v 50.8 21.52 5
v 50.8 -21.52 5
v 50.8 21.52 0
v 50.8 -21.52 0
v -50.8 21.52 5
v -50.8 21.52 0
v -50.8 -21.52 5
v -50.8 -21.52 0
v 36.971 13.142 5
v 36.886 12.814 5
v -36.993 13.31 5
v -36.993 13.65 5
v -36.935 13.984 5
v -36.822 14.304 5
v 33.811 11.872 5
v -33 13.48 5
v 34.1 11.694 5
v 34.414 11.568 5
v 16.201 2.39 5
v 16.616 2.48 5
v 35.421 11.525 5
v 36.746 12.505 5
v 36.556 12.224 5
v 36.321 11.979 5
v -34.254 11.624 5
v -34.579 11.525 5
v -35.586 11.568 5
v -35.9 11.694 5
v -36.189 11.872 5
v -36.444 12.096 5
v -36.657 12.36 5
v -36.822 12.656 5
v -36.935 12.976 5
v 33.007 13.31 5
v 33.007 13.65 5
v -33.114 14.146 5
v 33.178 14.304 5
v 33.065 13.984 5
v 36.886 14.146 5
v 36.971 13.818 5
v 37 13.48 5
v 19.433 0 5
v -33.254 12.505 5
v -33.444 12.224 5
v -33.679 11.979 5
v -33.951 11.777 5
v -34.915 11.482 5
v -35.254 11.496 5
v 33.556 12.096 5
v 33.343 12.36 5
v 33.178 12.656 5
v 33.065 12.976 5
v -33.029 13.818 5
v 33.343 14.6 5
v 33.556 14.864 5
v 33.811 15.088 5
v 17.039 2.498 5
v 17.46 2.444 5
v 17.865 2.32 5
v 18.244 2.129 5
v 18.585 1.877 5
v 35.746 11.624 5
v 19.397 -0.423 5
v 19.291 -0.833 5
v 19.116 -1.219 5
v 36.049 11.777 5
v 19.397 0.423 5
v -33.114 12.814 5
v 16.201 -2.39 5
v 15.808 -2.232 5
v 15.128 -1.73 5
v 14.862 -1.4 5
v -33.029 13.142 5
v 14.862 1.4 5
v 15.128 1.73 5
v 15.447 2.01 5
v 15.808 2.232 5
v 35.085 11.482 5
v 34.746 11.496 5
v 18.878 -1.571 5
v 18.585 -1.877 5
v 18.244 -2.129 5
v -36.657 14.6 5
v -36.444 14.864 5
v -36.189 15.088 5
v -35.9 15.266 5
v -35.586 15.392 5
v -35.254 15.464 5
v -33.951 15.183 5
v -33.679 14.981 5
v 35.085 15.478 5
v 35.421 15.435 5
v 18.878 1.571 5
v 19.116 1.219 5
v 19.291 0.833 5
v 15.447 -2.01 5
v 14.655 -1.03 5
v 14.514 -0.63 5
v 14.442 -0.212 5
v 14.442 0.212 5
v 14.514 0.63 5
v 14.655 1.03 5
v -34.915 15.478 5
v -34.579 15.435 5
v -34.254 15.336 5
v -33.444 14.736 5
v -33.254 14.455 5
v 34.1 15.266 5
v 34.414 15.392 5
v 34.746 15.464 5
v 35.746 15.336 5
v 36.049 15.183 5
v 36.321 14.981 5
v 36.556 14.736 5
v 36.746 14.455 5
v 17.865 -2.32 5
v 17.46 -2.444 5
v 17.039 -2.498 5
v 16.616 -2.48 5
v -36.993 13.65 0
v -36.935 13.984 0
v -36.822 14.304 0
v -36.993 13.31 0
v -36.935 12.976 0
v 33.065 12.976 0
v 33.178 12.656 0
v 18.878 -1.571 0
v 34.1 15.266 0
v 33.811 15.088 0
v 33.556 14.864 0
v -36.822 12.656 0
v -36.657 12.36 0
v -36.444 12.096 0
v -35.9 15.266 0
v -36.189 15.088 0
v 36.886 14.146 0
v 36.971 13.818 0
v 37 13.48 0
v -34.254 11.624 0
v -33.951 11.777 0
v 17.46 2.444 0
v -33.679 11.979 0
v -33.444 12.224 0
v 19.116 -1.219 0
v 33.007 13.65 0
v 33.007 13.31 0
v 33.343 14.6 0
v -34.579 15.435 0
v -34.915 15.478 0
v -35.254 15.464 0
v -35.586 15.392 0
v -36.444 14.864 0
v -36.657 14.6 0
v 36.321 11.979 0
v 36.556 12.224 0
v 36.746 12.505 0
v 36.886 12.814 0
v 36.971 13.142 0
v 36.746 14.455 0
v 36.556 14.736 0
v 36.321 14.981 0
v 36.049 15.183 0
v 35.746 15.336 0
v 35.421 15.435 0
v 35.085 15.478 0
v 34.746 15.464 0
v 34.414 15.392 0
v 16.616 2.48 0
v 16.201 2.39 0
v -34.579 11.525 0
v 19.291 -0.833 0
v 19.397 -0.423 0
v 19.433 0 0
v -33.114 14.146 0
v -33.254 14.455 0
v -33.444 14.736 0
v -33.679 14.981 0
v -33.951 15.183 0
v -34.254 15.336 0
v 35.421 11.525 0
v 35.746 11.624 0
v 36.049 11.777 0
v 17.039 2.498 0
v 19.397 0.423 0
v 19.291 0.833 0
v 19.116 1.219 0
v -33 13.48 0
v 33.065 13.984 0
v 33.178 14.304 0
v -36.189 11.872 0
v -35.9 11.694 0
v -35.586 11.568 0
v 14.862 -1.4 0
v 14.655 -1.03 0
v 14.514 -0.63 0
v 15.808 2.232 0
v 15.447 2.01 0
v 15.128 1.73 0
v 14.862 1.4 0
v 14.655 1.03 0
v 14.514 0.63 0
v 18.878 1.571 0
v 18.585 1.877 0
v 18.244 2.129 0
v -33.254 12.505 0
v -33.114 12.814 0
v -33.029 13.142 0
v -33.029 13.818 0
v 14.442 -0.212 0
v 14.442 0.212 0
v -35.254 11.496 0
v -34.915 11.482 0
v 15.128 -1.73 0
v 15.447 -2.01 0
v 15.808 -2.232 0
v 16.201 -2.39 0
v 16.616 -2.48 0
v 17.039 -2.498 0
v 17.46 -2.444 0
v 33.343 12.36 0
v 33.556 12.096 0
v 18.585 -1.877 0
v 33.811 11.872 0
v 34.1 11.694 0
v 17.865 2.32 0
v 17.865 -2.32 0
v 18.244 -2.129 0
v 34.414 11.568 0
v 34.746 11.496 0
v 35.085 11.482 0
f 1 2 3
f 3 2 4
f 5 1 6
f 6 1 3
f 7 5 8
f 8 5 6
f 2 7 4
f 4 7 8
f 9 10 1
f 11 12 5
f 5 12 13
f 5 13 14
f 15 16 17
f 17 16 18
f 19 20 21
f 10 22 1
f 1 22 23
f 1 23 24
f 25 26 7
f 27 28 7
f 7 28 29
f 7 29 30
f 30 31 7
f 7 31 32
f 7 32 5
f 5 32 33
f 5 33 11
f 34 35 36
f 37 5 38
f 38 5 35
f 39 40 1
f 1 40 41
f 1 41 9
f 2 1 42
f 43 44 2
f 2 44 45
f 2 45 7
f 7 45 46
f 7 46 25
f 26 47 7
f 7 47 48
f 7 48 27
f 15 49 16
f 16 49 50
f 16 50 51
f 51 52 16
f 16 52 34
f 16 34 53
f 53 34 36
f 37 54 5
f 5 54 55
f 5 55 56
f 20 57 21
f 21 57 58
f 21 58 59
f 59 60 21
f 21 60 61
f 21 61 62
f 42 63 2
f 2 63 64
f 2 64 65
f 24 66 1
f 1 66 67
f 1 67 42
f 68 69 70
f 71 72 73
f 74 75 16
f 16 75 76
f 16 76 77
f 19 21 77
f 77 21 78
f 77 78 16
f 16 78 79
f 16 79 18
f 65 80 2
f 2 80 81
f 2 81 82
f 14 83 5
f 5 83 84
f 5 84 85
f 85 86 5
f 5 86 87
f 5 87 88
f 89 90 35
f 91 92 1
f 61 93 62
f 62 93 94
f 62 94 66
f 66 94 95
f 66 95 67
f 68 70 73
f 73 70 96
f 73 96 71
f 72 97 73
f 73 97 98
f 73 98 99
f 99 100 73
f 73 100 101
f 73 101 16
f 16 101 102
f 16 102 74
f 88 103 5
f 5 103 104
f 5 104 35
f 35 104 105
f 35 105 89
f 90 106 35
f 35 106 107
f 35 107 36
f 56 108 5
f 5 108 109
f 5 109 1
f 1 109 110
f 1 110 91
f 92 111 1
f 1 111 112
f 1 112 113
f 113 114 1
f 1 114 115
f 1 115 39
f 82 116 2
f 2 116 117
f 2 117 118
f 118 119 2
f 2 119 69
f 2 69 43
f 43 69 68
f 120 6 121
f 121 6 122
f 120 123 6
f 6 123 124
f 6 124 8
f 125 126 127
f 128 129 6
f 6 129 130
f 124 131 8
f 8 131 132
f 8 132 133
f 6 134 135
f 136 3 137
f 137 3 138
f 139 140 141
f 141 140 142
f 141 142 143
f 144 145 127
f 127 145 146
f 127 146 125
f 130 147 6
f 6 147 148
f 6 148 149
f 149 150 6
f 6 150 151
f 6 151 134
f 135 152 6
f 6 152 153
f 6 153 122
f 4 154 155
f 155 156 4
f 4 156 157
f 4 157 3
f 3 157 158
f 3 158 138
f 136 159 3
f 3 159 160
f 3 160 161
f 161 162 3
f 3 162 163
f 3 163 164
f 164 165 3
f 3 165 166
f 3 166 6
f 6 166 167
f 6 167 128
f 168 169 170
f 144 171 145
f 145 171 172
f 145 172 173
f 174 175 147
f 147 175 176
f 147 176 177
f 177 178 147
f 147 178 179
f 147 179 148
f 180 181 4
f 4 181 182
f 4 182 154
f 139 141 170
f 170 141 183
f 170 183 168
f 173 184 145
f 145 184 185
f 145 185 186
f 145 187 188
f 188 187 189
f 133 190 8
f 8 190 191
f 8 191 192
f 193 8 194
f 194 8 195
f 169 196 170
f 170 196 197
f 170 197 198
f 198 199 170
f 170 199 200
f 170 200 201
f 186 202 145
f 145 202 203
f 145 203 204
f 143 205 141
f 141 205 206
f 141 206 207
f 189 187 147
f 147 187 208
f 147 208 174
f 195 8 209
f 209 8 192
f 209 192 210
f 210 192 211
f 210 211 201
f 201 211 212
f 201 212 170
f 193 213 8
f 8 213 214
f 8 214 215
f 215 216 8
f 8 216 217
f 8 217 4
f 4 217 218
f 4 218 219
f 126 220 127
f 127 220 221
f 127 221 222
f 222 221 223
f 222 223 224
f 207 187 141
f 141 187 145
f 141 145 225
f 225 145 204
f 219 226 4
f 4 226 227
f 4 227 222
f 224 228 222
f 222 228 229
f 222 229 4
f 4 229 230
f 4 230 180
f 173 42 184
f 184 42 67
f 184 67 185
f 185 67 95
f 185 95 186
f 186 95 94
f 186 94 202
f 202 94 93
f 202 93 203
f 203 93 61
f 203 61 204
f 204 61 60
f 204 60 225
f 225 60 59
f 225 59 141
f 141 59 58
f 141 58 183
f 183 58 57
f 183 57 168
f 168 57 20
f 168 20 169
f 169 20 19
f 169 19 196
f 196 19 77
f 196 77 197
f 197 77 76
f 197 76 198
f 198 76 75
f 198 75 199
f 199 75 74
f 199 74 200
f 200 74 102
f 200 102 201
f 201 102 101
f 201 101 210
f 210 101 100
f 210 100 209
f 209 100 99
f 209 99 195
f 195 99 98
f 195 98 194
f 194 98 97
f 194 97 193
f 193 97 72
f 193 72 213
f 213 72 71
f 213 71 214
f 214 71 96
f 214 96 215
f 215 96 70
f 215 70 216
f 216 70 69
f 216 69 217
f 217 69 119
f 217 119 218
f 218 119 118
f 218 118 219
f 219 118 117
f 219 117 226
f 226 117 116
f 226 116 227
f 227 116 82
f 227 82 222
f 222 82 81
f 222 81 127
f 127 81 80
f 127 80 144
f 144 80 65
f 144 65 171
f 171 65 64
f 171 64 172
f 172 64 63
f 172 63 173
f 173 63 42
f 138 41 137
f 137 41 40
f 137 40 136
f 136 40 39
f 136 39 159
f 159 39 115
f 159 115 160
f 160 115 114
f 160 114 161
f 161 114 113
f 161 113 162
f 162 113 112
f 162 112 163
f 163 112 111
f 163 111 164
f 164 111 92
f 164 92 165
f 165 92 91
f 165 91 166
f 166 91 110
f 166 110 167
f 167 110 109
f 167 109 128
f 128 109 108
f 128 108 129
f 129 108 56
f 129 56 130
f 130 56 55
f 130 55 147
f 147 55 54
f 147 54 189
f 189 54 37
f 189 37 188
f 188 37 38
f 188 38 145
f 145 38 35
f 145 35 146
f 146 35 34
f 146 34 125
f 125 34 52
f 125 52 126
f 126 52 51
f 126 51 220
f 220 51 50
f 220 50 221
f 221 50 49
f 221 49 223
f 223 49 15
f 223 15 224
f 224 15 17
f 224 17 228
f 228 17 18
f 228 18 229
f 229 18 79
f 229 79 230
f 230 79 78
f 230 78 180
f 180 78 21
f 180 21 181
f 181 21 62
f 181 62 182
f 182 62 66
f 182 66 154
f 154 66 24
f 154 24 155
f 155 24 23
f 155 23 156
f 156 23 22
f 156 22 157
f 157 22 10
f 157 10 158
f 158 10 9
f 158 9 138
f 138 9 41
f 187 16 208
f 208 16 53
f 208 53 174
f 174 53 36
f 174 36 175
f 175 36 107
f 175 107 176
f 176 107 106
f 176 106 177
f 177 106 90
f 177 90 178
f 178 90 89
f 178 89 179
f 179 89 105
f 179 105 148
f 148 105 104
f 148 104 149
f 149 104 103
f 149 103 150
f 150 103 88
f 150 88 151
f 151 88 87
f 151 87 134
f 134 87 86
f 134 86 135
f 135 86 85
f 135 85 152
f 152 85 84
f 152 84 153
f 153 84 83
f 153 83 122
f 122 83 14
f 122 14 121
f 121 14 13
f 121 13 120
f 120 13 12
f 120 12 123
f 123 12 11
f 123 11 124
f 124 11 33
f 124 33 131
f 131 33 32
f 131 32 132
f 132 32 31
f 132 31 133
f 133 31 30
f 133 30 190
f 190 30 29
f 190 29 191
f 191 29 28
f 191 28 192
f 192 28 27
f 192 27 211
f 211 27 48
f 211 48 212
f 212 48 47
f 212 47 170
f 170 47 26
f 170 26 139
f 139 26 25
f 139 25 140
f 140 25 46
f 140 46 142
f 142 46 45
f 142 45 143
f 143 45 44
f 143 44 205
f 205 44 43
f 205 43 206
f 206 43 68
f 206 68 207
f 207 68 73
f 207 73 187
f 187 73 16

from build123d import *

# Parameters (mm, degrees)
SKETCH1_W           = 101.6
SKETCH1_H           = 43.04
BOSS_EXTRUDE1_DEPTH = 5
SKETCH2_R           = 2.5
CUT_EXTRUDE1_DEPTH  = 56.396303126
SKETCH3_R           = 2
CUT_EXTRUDE2_DEPTH  = 56.396303126


with BuildPart() as part:
    # Sketch1 → Boss-Extrude1 (new body)
    with BuildSketch(Plane.XY):
        Rectangle(SKETCH1_W, SKETCH1_H)
    extrude(amount=BOSS_EXTRUDE1_DEPTH)

    # Sketch2 → Cut-Extrude1 (cut, through all)
    with BuildSketch(Plane.XY.offset(5)):
        with Locations((16.93333334, 0)):
            Circle(SKETCH2_R)
    extrude(amount=-CUT_EXTRUDE1_DEPTH, mode=Mode.SUBTRACT)

    # Sketch3 → Cut-Extrude2 (cut, through all)
    with BuildSketch(Plane.XY.offset(5)):
        with Locations((-35, 13.48)):
            Circle(SKETCH3_R)
        with Locations((35, 13.48)):
            Circle(SKETCH3_R)
    extrude(amount=-CUT_EXTRUDE2_DEPTH, mode=Mode.SUBTRACT)


solid = part.part
